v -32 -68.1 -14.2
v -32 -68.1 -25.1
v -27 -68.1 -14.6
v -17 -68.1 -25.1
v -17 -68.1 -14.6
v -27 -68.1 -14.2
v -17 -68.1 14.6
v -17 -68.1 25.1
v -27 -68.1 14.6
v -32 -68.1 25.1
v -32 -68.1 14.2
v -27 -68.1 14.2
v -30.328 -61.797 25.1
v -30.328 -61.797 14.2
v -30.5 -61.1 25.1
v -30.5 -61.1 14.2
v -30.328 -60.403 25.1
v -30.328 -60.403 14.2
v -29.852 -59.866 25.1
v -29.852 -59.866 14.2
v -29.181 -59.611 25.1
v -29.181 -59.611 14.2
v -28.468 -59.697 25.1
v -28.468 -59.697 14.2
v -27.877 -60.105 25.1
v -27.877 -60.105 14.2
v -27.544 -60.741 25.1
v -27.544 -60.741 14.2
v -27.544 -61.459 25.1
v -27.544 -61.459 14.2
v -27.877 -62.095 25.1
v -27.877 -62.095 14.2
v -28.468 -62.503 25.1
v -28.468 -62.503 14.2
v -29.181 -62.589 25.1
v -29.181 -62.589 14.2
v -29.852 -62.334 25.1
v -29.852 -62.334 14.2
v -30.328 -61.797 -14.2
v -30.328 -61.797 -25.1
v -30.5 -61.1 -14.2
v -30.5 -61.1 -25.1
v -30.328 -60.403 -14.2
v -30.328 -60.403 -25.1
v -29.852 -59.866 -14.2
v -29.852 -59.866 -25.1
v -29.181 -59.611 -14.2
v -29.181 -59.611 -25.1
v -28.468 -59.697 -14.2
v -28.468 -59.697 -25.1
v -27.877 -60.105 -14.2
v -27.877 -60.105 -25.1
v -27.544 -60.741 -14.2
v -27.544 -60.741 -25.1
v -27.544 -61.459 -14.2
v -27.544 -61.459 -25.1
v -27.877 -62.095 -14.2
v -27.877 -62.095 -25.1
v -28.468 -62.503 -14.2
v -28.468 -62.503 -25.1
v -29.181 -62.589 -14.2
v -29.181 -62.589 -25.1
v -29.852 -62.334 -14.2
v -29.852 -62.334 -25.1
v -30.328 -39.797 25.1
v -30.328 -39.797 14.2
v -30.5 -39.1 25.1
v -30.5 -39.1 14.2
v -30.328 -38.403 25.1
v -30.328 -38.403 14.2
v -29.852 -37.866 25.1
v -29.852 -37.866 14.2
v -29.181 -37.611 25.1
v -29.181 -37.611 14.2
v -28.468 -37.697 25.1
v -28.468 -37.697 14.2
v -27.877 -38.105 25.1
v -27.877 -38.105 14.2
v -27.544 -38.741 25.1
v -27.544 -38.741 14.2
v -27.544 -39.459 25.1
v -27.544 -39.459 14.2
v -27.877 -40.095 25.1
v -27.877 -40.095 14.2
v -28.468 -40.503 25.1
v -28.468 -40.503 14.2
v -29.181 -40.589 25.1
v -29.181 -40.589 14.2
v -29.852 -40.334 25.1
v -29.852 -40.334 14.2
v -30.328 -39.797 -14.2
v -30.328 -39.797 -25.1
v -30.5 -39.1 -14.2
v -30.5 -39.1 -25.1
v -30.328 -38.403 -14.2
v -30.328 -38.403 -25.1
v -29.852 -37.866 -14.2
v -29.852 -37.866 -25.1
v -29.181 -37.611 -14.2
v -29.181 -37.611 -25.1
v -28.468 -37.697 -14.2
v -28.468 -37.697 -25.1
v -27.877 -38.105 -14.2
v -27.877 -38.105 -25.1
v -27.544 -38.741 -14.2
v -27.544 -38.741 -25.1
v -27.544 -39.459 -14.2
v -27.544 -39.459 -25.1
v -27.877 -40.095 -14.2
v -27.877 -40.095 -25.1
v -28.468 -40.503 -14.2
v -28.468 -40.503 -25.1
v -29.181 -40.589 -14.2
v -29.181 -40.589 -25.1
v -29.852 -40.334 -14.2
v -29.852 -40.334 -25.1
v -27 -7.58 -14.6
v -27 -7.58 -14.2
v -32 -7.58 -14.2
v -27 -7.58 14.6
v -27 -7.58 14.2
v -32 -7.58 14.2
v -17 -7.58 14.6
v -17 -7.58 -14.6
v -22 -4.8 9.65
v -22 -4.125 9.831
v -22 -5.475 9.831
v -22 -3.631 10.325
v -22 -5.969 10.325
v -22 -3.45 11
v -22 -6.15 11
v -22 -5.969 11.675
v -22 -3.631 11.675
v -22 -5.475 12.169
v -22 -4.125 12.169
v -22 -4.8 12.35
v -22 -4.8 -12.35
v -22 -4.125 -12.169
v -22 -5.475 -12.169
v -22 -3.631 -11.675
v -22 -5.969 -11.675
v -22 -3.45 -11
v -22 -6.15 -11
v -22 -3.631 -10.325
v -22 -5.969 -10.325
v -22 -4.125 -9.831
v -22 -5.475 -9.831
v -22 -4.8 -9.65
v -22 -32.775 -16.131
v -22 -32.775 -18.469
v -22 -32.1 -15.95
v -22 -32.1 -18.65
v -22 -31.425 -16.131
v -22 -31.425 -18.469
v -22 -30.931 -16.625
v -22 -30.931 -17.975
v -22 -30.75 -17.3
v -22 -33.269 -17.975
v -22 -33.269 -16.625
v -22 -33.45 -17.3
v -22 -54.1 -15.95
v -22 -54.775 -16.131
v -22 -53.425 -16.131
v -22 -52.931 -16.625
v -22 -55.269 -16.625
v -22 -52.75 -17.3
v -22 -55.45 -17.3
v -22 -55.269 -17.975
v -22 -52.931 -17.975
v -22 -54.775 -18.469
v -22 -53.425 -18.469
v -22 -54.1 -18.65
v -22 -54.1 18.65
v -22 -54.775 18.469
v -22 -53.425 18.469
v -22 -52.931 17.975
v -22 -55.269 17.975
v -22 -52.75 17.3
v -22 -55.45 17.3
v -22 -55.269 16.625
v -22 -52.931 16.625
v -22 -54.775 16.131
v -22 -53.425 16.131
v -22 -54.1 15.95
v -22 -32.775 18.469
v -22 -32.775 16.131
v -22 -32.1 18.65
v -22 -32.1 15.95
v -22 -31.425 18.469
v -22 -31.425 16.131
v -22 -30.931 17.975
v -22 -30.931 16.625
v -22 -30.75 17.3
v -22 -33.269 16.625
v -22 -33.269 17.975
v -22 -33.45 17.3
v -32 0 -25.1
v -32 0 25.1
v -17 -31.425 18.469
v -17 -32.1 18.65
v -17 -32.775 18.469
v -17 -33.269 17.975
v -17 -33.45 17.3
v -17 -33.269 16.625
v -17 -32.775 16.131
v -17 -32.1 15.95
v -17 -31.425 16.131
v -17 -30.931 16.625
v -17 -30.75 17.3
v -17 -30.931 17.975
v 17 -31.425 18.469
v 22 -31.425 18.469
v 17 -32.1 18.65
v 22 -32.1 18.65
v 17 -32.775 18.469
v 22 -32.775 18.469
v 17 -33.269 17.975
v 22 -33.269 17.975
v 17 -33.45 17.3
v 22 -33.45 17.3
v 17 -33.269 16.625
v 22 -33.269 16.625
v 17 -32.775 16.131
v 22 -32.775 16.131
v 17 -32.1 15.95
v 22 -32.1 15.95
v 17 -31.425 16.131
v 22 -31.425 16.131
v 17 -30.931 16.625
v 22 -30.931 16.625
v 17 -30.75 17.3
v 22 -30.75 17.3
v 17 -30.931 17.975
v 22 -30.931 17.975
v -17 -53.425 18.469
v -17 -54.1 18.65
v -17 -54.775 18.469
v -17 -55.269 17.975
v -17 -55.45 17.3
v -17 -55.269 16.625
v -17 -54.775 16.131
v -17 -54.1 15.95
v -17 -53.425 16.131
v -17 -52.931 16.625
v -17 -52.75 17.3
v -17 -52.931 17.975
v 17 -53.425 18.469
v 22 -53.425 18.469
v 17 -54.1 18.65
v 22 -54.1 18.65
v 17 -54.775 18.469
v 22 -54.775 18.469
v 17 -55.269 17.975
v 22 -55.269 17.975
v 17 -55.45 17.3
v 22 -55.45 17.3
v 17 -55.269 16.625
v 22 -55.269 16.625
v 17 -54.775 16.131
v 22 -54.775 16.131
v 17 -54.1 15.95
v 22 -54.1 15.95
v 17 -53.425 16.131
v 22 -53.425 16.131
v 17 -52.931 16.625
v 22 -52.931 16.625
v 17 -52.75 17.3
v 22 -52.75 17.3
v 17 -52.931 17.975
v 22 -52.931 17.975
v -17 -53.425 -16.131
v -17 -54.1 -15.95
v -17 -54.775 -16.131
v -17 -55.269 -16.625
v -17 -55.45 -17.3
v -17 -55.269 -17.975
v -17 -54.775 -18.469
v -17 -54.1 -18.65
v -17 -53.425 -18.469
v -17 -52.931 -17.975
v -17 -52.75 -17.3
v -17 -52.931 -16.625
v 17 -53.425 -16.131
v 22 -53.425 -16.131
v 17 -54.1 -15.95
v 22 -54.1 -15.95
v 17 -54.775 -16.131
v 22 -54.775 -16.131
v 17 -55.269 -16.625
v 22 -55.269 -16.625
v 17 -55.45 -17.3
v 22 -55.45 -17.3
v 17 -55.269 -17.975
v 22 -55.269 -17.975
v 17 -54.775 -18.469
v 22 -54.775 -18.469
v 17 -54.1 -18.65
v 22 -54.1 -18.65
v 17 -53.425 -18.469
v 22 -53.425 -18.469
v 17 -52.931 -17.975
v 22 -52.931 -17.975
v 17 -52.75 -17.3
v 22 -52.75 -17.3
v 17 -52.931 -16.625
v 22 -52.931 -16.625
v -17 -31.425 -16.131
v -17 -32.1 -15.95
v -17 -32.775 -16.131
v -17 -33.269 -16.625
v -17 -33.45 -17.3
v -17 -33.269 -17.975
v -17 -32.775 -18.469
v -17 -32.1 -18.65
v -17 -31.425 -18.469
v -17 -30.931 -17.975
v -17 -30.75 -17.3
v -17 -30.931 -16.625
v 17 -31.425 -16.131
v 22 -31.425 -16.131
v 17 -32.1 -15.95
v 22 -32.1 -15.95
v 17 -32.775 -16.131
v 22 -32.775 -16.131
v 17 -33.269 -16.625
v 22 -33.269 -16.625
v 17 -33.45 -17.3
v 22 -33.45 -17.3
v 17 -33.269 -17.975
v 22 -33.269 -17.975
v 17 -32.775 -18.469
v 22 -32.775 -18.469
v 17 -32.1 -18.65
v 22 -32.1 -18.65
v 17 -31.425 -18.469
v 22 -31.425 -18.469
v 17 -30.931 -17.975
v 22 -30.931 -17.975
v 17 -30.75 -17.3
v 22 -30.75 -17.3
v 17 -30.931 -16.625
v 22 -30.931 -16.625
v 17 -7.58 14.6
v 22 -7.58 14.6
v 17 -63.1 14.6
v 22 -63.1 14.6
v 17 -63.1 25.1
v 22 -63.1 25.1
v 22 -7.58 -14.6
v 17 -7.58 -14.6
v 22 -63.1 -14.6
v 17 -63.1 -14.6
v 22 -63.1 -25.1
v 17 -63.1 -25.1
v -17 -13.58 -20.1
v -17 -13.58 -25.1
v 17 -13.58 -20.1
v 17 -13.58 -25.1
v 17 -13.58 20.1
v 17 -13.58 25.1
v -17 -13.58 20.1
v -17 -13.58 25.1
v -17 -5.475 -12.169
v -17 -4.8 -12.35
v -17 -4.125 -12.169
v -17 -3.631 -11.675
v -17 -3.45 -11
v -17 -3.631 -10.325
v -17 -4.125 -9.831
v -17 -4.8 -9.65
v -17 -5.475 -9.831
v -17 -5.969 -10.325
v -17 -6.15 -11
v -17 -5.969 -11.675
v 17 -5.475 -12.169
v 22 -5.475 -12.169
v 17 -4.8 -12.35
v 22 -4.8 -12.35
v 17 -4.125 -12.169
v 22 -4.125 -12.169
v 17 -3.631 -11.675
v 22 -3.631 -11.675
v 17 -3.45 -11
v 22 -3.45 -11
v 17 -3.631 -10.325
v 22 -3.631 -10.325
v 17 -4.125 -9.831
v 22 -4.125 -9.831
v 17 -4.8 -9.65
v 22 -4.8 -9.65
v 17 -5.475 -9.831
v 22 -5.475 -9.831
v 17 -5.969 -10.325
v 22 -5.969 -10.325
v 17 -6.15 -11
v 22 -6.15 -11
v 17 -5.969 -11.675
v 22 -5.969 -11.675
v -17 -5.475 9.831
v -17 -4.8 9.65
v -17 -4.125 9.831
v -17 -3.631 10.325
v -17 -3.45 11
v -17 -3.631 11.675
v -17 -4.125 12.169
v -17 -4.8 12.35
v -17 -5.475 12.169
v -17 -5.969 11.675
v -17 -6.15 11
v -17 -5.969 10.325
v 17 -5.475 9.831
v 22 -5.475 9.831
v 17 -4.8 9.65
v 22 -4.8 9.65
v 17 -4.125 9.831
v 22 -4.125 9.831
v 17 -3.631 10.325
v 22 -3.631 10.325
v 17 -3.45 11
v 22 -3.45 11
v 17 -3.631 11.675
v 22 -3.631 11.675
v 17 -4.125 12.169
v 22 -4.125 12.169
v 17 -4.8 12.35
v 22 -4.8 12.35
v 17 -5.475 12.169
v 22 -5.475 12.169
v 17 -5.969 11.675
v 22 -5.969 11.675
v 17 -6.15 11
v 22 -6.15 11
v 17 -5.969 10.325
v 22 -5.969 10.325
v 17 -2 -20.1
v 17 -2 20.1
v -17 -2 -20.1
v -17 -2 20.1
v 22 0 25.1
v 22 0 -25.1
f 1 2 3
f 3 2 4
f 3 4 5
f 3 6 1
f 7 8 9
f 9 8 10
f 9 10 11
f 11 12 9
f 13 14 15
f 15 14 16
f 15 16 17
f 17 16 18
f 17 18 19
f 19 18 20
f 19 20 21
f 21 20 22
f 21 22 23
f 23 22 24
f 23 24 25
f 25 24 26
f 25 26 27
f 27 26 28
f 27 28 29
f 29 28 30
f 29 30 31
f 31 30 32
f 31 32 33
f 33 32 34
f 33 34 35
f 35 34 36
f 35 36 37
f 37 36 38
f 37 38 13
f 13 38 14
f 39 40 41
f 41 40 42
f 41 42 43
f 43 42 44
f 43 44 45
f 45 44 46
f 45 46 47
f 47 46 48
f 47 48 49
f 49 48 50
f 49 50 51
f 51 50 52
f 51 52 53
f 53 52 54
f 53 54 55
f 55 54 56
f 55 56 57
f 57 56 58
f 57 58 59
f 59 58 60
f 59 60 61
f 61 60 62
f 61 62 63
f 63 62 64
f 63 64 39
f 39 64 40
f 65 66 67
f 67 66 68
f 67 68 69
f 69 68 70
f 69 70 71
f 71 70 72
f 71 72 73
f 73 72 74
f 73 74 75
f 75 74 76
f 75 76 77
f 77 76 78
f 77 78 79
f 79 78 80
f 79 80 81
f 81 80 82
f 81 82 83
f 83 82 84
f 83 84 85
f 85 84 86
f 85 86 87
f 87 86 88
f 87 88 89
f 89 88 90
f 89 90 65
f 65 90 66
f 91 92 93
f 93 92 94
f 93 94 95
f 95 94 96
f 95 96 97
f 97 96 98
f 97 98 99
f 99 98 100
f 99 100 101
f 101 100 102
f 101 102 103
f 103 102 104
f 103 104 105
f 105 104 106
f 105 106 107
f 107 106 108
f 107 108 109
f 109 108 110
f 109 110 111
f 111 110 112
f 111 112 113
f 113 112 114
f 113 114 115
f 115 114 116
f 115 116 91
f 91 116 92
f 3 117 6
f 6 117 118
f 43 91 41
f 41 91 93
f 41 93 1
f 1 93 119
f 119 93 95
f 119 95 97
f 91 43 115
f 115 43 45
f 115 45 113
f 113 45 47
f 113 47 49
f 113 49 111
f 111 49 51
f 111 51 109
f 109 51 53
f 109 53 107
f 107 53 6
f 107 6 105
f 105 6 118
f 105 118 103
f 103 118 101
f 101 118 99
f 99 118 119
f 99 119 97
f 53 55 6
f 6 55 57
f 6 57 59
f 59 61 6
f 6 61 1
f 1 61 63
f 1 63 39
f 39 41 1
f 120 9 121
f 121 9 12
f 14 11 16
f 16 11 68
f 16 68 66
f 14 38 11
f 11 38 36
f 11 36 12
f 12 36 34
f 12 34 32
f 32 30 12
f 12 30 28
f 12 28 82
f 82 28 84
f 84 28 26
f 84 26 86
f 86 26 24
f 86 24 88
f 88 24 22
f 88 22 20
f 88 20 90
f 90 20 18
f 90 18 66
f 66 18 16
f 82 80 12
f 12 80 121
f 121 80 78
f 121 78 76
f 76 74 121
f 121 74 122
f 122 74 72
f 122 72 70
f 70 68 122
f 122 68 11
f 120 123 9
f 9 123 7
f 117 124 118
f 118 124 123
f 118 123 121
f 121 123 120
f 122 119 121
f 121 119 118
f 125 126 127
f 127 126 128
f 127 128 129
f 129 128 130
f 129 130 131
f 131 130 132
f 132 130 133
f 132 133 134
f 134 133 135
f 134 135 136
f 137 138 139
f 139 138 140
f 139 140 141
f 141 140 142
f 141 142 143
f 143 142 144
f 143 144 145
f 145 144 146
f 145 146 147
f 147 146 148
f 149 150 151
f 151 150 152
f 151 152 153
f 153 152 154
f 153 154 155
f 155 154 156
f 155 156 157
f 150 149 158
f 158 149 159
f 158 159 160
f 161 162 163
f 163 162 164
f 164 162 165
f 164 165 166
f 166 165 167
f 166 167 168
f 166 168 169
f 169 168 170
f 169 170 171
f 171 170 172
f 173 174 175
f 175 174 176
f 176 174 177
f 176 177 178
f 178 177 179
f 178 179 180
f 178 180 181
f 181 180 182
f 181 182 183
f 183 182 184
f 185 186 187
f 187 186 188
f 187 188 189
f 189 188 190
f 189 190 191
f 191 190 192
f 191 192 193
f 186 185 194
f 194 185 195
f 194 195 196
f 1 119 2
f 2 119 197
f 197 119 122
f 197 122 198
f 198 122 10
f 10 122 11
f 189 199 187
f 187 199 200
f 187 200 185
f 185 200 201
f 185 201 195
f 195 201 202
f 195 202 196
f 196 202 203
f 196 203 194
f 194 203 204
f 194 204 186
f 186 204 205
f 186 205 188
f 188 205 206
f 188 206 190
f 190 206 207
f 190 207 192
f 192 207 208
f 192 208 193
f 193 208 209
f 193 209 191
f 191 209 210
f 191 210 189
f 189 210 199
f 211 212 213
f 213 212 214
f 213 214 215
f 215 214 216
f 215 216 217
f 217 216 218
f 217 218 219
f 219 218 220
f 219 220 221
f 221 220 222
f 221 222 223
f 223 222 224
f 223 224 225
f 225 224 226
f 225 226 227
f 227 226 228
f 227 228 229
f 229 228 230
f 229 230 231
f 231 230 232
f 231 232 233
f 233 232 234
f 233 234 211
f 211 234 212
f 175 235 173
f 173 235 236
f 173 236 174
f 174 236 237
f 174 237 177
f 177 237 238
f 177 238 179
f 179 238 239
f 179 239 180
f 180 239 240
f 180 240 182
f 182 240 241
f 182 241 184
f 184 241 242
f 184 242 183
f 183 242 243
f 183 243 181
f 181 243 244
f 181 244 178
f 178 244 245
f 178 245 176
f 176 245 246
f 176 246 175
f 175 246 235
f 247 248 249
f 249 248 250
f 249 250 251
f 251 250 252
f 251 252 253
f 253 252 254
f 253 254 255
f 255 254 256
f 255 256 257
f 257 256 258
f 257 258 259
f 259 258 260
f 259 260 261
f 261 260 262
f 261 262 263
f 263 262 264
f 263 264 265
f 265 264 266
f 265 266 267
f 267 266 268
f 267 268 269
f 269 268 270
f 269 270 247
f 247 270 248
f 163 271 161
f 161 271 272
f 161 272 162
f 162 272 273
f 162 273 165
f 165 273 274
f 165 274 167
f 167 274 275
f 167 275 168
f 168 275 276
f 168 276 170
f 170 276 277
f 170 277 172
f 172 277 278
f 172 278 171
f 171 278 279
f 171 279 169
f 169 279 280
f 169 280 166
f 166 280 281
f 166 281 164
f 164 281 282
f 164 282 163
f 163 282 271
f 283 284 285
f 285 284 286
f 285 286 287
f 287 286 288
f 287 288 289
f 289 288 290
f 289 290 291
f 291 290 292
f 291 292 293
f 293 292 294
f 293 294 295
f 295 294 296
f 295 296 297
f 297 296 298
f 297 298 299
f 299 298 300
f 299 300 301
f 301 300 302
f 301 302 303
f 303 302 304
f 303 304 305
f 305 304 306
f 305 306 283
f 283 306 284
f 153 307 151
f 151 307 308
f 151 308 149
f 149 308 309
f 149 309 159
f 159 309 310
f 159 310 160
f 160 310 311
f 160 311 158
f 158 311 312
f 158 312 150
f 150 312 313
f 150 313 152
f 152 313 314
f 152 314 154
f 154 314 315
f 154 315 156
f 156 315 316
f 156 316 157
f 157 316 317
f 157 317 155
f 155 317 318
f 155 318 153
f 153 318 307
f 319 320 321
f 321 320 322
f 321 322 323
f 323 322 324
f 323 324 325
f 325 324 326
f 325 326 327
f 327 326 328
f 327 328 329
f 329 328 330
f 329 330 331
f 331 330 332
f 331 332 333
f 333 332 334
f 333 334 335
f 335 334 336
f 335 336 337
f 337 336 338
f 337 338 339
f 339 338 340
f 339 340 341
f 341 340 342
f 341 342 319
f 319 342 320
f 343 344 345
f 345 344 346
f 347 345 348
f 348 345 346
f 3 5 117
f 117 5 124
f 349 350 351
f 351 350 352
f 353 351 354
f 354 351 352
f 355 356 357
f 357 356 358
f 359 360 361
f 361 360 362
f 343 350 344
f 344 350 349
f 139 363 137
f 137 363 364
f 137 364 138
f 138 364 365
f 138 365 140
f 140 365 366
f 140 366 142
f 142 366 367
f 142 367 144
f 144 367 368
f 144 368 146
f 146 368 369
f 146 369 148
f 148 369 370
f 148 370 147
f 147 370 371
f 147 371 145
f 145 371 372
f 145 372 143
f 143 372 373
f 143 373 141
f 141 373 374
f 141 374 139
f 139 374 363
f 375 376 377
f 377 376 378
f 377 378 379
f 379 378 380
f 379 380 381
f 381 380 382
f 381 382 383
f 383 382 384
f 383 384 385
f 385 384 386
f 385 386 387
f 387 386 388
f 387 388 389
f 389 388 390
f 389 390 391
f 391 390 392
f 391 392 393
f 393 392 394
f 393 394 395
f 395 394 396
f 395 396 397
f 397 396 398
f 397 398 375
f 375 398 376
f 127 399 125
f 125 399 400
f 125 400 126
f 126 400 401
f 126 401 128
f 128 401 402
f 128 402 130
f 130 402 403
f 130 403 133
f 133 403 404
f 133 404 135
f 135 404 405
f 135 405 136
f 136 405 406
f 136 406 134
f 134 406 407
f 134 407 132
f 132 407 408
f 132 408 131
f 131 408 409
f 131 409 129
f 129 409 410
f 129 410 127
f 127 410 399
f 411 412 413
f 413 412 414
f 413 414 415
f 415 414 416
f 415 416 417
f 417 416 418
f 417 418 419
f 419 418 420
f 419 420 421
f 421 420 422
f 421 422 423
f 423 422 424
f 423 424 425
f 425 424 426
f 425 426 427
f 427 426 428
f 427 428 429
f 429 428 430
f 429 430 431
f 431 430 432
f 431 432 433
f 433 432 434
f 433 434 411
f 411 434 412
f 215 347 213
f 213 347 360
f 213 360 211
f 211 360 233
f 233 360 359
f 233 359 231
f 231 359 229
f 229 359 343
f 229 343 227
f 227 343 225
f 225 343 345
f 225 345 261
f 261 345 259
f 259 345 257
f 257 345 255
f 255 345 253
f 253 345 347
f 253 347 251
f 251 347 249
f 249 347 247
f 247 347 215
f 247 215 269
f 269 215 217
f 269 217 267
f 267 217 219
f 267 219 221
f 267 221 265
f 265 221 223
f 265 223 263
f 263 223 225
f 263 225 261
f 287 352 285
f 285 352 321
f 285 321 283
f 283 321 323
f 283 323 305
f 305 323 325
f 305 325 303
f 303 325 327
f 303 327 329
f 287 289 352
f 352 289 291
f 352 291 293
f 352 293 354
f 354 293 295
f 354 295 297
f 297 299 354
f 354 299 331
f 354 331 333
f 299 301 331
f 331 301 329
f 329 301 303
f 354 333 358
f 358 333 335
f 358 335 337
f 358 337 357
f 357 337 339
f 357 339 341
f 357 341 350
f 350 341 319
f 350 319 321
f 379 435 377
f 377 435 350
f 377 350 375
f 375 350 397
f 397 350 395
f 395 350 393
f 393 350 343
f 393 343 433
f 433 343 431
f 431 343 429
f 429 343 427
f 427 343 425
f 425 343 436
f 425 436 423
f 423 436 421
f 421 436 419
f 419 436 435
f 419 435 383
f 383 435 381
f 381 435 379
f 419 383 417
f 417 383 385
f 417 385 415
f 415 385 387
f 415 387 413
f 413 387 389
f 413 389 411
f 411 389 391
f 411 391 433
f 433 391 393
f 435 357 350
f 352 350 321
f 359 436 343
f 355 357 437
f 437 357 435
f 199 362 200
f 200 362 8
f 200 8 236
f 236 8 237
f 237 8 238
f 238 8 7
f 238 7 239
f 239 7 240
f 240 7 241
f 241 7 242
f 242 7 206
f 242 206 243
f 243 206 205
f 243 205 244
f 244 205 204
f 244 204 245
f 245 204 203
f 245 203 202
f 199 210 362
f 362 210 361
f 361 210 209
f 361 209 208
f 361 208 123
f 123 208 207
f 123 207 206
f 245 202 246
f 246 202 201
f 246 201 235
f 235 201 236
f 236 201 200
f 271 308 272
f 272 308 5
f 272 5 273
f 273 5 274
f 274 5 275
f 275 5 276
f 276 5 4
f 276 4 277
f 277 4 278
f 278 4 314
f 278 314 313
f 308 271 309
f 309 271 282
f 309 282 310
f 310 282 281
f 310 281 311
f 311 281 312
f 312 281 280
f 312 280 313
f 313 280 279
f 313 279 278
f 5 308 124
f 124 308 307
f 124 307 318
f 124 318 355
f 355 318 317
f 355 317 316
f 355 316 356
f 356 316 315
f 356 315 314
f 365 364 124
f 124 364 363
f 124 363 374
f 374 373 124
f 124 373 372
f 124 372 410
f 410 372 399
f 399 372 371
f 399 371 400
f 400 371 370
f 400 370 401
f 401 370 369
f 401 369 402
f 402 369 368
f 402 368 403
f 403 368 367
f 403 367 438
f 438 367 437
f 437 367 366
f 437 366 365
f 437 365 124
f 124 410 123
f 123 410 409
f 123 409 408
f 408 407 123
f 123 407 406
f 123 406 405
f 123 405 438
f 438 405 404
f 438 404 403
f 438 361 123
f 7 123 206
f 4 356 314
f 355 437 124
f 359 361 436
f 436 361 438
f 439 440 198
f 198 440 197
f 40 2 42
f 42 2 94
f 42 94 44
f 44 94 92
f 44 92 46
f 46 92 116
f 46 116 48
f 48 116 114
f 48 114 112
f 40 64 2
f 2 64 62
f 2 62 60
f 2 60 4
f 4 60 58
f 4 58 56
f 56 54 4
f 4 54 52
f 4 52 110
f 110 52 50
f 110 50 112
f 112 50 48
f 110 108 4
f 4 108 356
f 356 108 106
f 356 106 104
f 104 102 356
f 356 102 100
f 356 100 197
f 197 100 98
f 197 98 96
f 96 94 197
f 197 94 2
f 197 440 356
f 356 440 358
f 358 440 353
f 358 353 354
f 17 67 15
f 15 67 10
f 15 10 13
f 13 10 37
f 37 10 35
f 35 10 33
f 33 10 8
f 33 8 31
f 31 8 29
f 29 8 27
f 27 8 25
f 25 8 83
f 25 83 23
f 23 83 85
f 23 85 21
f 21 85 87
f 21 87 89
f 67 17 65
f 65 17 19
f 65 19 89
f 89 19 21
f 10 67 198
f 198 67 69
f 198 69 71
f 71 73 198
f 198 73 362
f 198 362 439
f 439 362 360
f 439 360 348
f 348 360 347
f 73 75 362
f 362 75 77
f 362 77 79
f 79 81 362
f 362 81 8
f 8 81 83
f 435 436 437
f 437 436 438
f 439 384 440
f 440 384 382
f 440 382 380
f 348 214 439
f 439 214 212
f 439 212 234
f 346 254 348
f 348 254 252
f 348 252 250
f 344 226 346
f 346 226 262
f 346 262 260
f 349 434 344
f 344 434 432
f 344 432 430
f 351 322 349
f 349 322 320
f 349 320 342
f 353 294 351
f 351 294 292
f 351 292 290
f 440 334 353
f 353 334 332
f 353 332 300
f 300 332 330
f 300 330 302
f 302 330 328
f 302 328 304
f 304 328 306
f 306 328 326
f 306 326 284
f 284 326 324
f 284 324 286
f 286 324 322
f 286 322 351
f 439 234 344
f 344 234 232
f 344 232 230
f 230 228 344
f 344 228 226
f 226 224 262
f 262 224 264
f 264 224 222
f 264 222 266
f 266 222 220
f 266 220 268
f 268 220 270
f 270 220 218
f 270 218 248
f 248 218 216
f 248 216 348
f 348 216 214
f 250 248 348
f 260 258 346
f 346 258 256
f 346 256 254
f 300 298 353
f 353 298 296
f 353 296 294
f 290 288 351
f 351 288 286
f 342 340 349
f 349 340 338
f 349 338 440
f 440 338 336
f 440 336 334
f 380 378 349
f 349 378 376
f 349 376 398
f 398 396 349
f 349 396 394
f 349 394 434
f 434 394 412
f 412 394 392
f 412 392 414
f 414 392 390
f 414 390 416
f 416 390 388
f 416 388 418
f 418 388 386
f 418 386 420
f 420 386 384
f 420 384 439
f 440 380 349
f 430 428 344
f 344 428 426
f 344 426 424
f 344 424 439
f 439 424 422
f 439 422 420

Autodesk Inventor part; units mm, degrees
ref_plane "YZ Plane" through (0, 0, 0) normal (1, 0, 0) x (0, 1, 0)
ref_plane "XZ Plane" through (0, 0, 0) normal (0, 1, 0) x (-1, 0, 0)
ref_plane "XY Plane" through (0, 0, 0) normal (0, 0, 1) x (1, 0, 0)
sketch "스케치1" plane through (0, 0, 0) normal (0, 1, 0) x (-1, 0, 0)
  line L0 (22, -14) -> (-22, -14)
  line L1 (-22, -14) -> (-22, 14)
  line L2 (-22, 14) -> (22, 14)
  line L3 (22, 14) -> (22, -14)
  point P0 (0, 0)
  dimension "d0" = 44
  dimension "d1" = 22
  dimension "d2" = 28
  dimension "d3" = 14
extrude "돌출1" add sketch "스케치1" along normal blind 5
sketch "스케치2" plane through (-22, 0, 14) normal (0, 0, 1) x (1, 0, 0)
  circle A0 centre (33, 3) radius 1.5
  circle A1 centre (11, 3) radius 1.5
  line L0 (44, 0) -> (0, 0) projected
  line L1 (22, 0) -> (22, 5)
  line L2 (44, 5) -> (0, 5) projected
  dimension "d6" = 3
  dimension "d7" = 3
  dimension "d8" = 3
  dimension "d9" = 3
  dimension "d10" = 22
  dimension "d11" = 11
extrude "돌출2" cut sketch "스케치2" against normal blind 60
sketch "스케치3" plane through (0, 0, 0) normal (0, -1, 0) x (1, 0, 0)
  line L0 (-17, 14.5) -> (17, 14.5)
  line L1 (17, 14.5) -> (17, -14.5)
  line L2 (17, -14.5) -> (-17, -14.5)
  line L3 (-17, -14.5) -> (-17, 14.5)
  line L4 (22, -14) -> (-22, -14) projected
  line L5 (22, 25.1) -> (-22, 25.1)
  line L6 (-22, 25.1) -> (-22, -25.1)
  line L7 (-22, -25.1) -> (22, -25.1)
  line L8 (22, -25.1) -> (22, 25.1)
  point P0 (0, 0)
  dimension "d17" = 34
  dimension "d18" = 17
  dimension "d20" = 29
  dimension "d21" = 14.5
  dimension "d22" = 10.6
  dimension "d23" = 10.6
  dimension "d24" = 5
  dimension "d25" = 5
extrude "돌출3" add sketch "스케치3" along normal blind 2
sketch "스케치4" plane through (0, -2, 0) normal (0, -1, 0) x (1, 0, 0)
  line L0 (-22, 25.1) -> (-22, -25.1) projected
  line L1 (-22, -25.1) -> (22, -25.1) projected
  line L2 (-22, 25.1) -> (22, 25.1)
  line L3 (22, 25.1) -> (22, -25.1)
  line L4 (22, -25.1) -> (-22, -25.1)
  line L5 (-22, -25.1) -> (-22, 25.1)
  line L6 (-17, 20.1) -> (17, 20.1)
  line L7 (17, 20.1) -> (17, -20.1)
  line L8 (17, -20.1) -> (-17, -20.1)
  line L9 (-17, -20.1) -> (-17, 20.1)
  point P0 (0, 0)
  dimension "d28" = 5
  dimension "d29" = 5
  dimension "d30" = 5
  dimension "d31" = 5
extrude "돌출4" add sketch "스케치4" along normal blind 5.58
sketch "스케치5" plane through (22, 5, 14) normal (1, 0, 0) x (0, 0, -1)
  circle A0 centre (25, -9.8) radius 1.35
  circle A1 centre (3, -9.8) radius 1.35
  line L0 (39.1, -5) -> (28, -5) projected
  line L1 (0, -5) -> (-11.1, -5) projected
  point P0 (14, -5)
  dimension "d34" = 2.7
  dimension "d35" = 2.7
  dimension "d36" = 4.8
  dimension "d37" = 4.8
  dimension "d38" = 22
  dimension "d39" = 11
extrude "돌출5" cut sketch "스케치5" against normal blind 90
sketch "스케치6" plane through (0, -7.58, 0) normal (0, -1, 0) x (1, 0, 0)
  line L0 (22, -25.1) -> (-22, -25.1)
  line L1 (-22, -25.1) -> (-22, -20.1)
  line L2 (-22, -20.1) -> (22, -20.1)
  line L3 (22, -20.1) -> (22, -25.1)
  line L4 (22, 25.1) -> (-22, 25.1)
  line L5 (-22, 25.1) -> (-22, 20.1)
  line L6 (-22, 20.1) -> (22, 20.1)
  line L7 (22, 20.1) -> (22, 25.1)
  point P0 (0, 0)
  dimension "d42" = 5
  dimension "d43" = 5
extrude "돌출6" add sketch "스케치6" along normal blind 6
sketch "스케치7" plane through (0, -7.58, 0) normal (0, -1, 0) x (1, 0, 0)
  line L0 (22, -20.1) -> (-22, -20.1) projected
  line L1 (17, 20.1) -> (17, -20.1) projected
  line L2 (22, -20.1) -> (17, -20.1)
  line L3 (17, -20.1) -> (17, -14.6)
  line L4 (17, -14.6) -> (22, -14.6)
  line L5 (22, -14.6) -> (22, -20.1)
  line L6 (22, 14) -> (22, 25.1) projected
  line L7 (22, 20.1) -> (17, 20.1)
  line L8 (17, 20.1) -> (17, 14.6)
  line L9 (17, 14.6) -> (22, 14.6)
  line L10 (22, 14.6) -> (22, 20.1)
  line L11 (-22, -14) -> (-22, 14) projected
  line L12 (-17, -20.1) -> (-22, -20.1)
  line L13 (-22, -20.1) -> (-22, -14.6)
  line L14 (-22, -14.6) -> (-17, -14.6)
  line L15 (-17, -14.6) -> (-17, -20.1)
  line L16 (-17, 20.1) -> (-22, 20.1)
  line L17 (-22, 20.1) -> (-22, 14.6)
  line L18 (-22, 14.6) -> (-17, 14.6)
  line L19 (-17, 14.6) -> (-17, 20.1)
  line L20 (22, 20.1) -> (17, 20.1) projected
  point P0 (0, 0)
  dimension "d46" = 5.5
  dimension "d47" = 5.5
  dimension "d48" = 5.5
  dimension "d49" = 5.5
  dimension "d50" = 0
extrude "돌출7" add sketch "스케치7" along normal blind 55.52
sketch "스케치8" plane through (0, -13.58, 0) normal (0, -1, 0) x (1, 0, 0)
  line L0 (-22, -20.1) -> (-22, -25.1) projected
  line L1 (-17, -20.1) -> (-22, -20.1) projected
  line L2 (-22, -25.1) -> (-17, -25.1)
  line L3 (-17, -25.1) -> (-17, -20.1)
  line L4 (-17, -20.1) -> (-22, -20.1)
  line L5 (-22, -20.1) -> (-22, -25.1)
  line L6 (-17, -20.1) -> (17, -20.1) projected
  line L7 (22, -25.1) -> (22, -20.1) projected
  line L8 (17, -20.1) -> (22, -20.1)
  line L9 (22, -20.1) -> (22, -25.1)
  line L10 (22, -25.1) -> (17, -25.1)
  line L11 (17, -25.1) -> (17, -20.1)
  line L12 (17, -20.1) -> (17, 20.1) projected
  line L13 (22, 20.1) -> (22, 25.1) projected
  line L14 (17, 20.1) -> (22, 20.1)
  line L15 (22, 20.1) -> (22, 25.1)
  line L16 (22, 25.1) -> (17, 25.1)
  line L17 (17, 25.1) -> (17, 20.1)
  line L18 (-22, 25.1) -> (-22, 20.1) projected
  line L19 (22, 25.1) -> (-22, 25.1) projected
  line L20 (-22, 20.1) -> (-17, 20.1)
  line L21 (-17, 20.1) -> (-17, 25.1)
  line L22 (-17, 25.1) -> (-22, 25.1)
  line L23 (-22, 25.1) -> (-22, 20.1)
  point P0 (0, 0)
extrude "돌출8" add sketch "스케치8" along normal blind 49.52
sketch "스케치9" plane through (-22, 5, -14) normal (-1, 0, 0) x (0, 0, 1)
  circle A0 centre (31.3, -59.1) radius 1.35
  circle A1 centre (-3.3, -59.1) radius 1.35
  line L0 (-0.6, -68.1) -> (-11.1, -68.1) projected
  line L1 (39.1, -68.1) -> (28.6, -68.1) projected
  line L2 (39.1, -5) -> (39.1, -68.1) projected
  line L3 (-11.1, -5) -> (-11.1, -68.1) projected
  circle A2 centre (31.3, -37.1) radius 1.35
  circle A3 centre (-3.3, -37.1) radius 1.35
  point P0 (14, -5)
  dimension "d55" = 9
  dimension "d56" = 9
  dimension "d57" = 2.7
  dimension "d58" = 2.7
  dimension "d59" = 7.8
  dimension "d60" = 7.8
  dimension "d61" = 2.7
  dimension "d62" = 2.7
  dimension "d63" = 22
  dimension "d64" = 22
extrude "돌출9" cut sketch "스케치9" against normal blind 49.52
sketch "스케치11" plane through (-22, 5, -14) normal (-1, 0, 0) x (0, 0, 1)
  line L0 (28, 0) -> (0, 0) projected
  line L1 (0, -5) -> (-11.1, -5) projected
  line L2 (28, 0) -> (0, 0)
  line L3 (0, 0) -> (0, -5)
  line L4 (0, -5) -> (28, -5)
  line L5 (28, -5) -> (28, 0)
  point P0 (14, -5)
extrude "돌출11" cut sketch "스케치11" against normal blind 80
sketch "스케치14" plane through (-22, 0, -25.1) normal (-1, 0, 0) x (0, 0, 1)
  line L0 (0, -63.1) -> (10.5, -63.1) projected
  line L1 (0, -63.1) -> (10.5, -63.1)
  line L2 (10.5, -7.58) -> (10.5, -63.1) projected
  line L3 (10.5, -63.1) -> (10.5, -7.58)
  line L4 (10.5, -7.58) -> (39.7, -7.58)
  line L5 (39.7, -7.58) -> (39.7, -63.1) projected
  line L6 (39.7, -7.58) -> (39.7, -63.1)
  line L7 (39.7, -63.1) -> (50.2, -63.1) projected
  line L8 (39.7, -63.1) -> (50.2, -63.1)
  line L9 (50.2, 0) -> (50.2, -63.1) projected
  line L10 (50.2, -63.1) -> (50.2, 0)
  line L11 (50.2, 0) -> (0, 0) projected
  line L12 (50.2, 0) -> (0, 0)
  line L13 (0, -13.58) -> (0, -63.1) projected
  line L14 (0, 0) -> (0, -63.1)
  point P0 (25.1, 0)
extrude "돌출14" add sketch "스케치14" along normal blind 10
sketch "스케치15" plane through (-17, -63.1, 14.6) normal (0, 0, -1) x (-1, 0, 0)
  line L0 (15, 55.52) -> (15, 0) projected
  line L1 (0, 55.52) -> (15, 55.52) projected
  line L2 (15, 0) -> (10, 0)
  line L3 (10, 0) -> (10, 55.52)
  line L4 (10, 55.52) -> (15, 55.52)
  line L5 (15, 55.52) -> (15, 0)
  point P0 (-17, 63.1)
  dimension "d86" = 5
extrude "돌출15" add sketch "스케치15" along normal blind 0.4
sketch "스케치16" plane through (-17, -63.1, -14.6) normal (0, 0, 1) x (1, 0, 0)
  line L0 (-15, 0) -> (-15, 55.52) projected
  line L1 (-15, 55.52) -> (0, 55.52) projected
  line L2 (-15, 0) -> (-10, 0)
  line L3 (-10, 0) -> (-10, 55.52)
  line L4 (-10, 55.52) -> (-15, 55.52)
  line L5 (-15, 55.52) -> (-15, 0)
  point P0 (17, 63.1)
  dimension "d89" = 5
extrude "돌출16" add sketch "스케치16" along normal blind 0.4
sketch "스케치17" plane through (17, -13.58, -25.1) normal (0, 0, -1) x (-1, 0, 0)
  line L0 (13.776, -36.52) -> (66.3511, -36.52)
  line L1 (34, -49.52) -> (49, -49.52) projected
  circle A0 centre (46, -47.52) radius 1.5
  circle A1 centre (46, -25.52) radius 1.5
  line L2 (49, 13.58) -> (49, -49.52) projected
  point P0 (17, 13.58)
  dimension "d92" = 13
  dimension "d93" = 3
  dimension "d94" = 3
  dimension "d95" = 3
  dimension "d96" = 3
  dimension "d97" = 22
  dimension "d98" = 11
extrude "돌출17" cut sketch "스케치17" against normal blind 100
sketch "스케치18" plane through (0, -63.1, 0) normal (0, -1, 0) x (1, 0, 0)
  line L0 (-17, 25.1) -> (-17, 20.1) projected
  line L1 (-17, 14.6) -> (-27, 14.6) projected
  line L2 (-17, 25.1) -> (-27, 25.1)
  line L3 (-27, 25.1) -> (-27, 14.6)
  line L4 (-27, 14.6) -> (-17, 14.6)
  line L5 (-17, 14.6) -> (-17, 25.1)
  line L6 (-27, 14.2) -> (-32, 14.2) projected
  line L7 (-27, 25.1) -> (-32, 25.1)
  line L8 (-32, 25.1) -> (-32, 14.2)
  line L9 (-32, 14.2) -> (-27, 14.2)
  line L10 (-27, 14.2) -> (-27, 25.1)
  line L11 (-27, -14.6) -> (-17, -14.6) projected
  line L12 (22, -25.1) -> (-32, -25.1) projected
  line L13 (-17, -14.6) -> (-27, -14.6)
  line L14 (-27, -14.6) -> (-27, -25.1)
  line L15 (-27, -25.1) -> (-17, -25.1)
  line L16 (-17, -25.1) -> (-17, -14.6)
  line L17 (-32, -14.2) -> (-27, -14.2) projected
  line L18 (-32, 25.1) -> (-32, -25.1) projected
  line L19 (-27, -14.2) -> (-32, -14.2)
  line L20 (-32, -14.2) -> (-32, -25.1)
  line L21 (-32, -25.1) -> (-27, -25.1)
  line L22 (-27, -25.1) -> (-27, -14.2)
  point P0 (0, 0)
extrude "돌출18" add sketch "스케치18" along normal blind 5
properties part number "elbow_fore"
